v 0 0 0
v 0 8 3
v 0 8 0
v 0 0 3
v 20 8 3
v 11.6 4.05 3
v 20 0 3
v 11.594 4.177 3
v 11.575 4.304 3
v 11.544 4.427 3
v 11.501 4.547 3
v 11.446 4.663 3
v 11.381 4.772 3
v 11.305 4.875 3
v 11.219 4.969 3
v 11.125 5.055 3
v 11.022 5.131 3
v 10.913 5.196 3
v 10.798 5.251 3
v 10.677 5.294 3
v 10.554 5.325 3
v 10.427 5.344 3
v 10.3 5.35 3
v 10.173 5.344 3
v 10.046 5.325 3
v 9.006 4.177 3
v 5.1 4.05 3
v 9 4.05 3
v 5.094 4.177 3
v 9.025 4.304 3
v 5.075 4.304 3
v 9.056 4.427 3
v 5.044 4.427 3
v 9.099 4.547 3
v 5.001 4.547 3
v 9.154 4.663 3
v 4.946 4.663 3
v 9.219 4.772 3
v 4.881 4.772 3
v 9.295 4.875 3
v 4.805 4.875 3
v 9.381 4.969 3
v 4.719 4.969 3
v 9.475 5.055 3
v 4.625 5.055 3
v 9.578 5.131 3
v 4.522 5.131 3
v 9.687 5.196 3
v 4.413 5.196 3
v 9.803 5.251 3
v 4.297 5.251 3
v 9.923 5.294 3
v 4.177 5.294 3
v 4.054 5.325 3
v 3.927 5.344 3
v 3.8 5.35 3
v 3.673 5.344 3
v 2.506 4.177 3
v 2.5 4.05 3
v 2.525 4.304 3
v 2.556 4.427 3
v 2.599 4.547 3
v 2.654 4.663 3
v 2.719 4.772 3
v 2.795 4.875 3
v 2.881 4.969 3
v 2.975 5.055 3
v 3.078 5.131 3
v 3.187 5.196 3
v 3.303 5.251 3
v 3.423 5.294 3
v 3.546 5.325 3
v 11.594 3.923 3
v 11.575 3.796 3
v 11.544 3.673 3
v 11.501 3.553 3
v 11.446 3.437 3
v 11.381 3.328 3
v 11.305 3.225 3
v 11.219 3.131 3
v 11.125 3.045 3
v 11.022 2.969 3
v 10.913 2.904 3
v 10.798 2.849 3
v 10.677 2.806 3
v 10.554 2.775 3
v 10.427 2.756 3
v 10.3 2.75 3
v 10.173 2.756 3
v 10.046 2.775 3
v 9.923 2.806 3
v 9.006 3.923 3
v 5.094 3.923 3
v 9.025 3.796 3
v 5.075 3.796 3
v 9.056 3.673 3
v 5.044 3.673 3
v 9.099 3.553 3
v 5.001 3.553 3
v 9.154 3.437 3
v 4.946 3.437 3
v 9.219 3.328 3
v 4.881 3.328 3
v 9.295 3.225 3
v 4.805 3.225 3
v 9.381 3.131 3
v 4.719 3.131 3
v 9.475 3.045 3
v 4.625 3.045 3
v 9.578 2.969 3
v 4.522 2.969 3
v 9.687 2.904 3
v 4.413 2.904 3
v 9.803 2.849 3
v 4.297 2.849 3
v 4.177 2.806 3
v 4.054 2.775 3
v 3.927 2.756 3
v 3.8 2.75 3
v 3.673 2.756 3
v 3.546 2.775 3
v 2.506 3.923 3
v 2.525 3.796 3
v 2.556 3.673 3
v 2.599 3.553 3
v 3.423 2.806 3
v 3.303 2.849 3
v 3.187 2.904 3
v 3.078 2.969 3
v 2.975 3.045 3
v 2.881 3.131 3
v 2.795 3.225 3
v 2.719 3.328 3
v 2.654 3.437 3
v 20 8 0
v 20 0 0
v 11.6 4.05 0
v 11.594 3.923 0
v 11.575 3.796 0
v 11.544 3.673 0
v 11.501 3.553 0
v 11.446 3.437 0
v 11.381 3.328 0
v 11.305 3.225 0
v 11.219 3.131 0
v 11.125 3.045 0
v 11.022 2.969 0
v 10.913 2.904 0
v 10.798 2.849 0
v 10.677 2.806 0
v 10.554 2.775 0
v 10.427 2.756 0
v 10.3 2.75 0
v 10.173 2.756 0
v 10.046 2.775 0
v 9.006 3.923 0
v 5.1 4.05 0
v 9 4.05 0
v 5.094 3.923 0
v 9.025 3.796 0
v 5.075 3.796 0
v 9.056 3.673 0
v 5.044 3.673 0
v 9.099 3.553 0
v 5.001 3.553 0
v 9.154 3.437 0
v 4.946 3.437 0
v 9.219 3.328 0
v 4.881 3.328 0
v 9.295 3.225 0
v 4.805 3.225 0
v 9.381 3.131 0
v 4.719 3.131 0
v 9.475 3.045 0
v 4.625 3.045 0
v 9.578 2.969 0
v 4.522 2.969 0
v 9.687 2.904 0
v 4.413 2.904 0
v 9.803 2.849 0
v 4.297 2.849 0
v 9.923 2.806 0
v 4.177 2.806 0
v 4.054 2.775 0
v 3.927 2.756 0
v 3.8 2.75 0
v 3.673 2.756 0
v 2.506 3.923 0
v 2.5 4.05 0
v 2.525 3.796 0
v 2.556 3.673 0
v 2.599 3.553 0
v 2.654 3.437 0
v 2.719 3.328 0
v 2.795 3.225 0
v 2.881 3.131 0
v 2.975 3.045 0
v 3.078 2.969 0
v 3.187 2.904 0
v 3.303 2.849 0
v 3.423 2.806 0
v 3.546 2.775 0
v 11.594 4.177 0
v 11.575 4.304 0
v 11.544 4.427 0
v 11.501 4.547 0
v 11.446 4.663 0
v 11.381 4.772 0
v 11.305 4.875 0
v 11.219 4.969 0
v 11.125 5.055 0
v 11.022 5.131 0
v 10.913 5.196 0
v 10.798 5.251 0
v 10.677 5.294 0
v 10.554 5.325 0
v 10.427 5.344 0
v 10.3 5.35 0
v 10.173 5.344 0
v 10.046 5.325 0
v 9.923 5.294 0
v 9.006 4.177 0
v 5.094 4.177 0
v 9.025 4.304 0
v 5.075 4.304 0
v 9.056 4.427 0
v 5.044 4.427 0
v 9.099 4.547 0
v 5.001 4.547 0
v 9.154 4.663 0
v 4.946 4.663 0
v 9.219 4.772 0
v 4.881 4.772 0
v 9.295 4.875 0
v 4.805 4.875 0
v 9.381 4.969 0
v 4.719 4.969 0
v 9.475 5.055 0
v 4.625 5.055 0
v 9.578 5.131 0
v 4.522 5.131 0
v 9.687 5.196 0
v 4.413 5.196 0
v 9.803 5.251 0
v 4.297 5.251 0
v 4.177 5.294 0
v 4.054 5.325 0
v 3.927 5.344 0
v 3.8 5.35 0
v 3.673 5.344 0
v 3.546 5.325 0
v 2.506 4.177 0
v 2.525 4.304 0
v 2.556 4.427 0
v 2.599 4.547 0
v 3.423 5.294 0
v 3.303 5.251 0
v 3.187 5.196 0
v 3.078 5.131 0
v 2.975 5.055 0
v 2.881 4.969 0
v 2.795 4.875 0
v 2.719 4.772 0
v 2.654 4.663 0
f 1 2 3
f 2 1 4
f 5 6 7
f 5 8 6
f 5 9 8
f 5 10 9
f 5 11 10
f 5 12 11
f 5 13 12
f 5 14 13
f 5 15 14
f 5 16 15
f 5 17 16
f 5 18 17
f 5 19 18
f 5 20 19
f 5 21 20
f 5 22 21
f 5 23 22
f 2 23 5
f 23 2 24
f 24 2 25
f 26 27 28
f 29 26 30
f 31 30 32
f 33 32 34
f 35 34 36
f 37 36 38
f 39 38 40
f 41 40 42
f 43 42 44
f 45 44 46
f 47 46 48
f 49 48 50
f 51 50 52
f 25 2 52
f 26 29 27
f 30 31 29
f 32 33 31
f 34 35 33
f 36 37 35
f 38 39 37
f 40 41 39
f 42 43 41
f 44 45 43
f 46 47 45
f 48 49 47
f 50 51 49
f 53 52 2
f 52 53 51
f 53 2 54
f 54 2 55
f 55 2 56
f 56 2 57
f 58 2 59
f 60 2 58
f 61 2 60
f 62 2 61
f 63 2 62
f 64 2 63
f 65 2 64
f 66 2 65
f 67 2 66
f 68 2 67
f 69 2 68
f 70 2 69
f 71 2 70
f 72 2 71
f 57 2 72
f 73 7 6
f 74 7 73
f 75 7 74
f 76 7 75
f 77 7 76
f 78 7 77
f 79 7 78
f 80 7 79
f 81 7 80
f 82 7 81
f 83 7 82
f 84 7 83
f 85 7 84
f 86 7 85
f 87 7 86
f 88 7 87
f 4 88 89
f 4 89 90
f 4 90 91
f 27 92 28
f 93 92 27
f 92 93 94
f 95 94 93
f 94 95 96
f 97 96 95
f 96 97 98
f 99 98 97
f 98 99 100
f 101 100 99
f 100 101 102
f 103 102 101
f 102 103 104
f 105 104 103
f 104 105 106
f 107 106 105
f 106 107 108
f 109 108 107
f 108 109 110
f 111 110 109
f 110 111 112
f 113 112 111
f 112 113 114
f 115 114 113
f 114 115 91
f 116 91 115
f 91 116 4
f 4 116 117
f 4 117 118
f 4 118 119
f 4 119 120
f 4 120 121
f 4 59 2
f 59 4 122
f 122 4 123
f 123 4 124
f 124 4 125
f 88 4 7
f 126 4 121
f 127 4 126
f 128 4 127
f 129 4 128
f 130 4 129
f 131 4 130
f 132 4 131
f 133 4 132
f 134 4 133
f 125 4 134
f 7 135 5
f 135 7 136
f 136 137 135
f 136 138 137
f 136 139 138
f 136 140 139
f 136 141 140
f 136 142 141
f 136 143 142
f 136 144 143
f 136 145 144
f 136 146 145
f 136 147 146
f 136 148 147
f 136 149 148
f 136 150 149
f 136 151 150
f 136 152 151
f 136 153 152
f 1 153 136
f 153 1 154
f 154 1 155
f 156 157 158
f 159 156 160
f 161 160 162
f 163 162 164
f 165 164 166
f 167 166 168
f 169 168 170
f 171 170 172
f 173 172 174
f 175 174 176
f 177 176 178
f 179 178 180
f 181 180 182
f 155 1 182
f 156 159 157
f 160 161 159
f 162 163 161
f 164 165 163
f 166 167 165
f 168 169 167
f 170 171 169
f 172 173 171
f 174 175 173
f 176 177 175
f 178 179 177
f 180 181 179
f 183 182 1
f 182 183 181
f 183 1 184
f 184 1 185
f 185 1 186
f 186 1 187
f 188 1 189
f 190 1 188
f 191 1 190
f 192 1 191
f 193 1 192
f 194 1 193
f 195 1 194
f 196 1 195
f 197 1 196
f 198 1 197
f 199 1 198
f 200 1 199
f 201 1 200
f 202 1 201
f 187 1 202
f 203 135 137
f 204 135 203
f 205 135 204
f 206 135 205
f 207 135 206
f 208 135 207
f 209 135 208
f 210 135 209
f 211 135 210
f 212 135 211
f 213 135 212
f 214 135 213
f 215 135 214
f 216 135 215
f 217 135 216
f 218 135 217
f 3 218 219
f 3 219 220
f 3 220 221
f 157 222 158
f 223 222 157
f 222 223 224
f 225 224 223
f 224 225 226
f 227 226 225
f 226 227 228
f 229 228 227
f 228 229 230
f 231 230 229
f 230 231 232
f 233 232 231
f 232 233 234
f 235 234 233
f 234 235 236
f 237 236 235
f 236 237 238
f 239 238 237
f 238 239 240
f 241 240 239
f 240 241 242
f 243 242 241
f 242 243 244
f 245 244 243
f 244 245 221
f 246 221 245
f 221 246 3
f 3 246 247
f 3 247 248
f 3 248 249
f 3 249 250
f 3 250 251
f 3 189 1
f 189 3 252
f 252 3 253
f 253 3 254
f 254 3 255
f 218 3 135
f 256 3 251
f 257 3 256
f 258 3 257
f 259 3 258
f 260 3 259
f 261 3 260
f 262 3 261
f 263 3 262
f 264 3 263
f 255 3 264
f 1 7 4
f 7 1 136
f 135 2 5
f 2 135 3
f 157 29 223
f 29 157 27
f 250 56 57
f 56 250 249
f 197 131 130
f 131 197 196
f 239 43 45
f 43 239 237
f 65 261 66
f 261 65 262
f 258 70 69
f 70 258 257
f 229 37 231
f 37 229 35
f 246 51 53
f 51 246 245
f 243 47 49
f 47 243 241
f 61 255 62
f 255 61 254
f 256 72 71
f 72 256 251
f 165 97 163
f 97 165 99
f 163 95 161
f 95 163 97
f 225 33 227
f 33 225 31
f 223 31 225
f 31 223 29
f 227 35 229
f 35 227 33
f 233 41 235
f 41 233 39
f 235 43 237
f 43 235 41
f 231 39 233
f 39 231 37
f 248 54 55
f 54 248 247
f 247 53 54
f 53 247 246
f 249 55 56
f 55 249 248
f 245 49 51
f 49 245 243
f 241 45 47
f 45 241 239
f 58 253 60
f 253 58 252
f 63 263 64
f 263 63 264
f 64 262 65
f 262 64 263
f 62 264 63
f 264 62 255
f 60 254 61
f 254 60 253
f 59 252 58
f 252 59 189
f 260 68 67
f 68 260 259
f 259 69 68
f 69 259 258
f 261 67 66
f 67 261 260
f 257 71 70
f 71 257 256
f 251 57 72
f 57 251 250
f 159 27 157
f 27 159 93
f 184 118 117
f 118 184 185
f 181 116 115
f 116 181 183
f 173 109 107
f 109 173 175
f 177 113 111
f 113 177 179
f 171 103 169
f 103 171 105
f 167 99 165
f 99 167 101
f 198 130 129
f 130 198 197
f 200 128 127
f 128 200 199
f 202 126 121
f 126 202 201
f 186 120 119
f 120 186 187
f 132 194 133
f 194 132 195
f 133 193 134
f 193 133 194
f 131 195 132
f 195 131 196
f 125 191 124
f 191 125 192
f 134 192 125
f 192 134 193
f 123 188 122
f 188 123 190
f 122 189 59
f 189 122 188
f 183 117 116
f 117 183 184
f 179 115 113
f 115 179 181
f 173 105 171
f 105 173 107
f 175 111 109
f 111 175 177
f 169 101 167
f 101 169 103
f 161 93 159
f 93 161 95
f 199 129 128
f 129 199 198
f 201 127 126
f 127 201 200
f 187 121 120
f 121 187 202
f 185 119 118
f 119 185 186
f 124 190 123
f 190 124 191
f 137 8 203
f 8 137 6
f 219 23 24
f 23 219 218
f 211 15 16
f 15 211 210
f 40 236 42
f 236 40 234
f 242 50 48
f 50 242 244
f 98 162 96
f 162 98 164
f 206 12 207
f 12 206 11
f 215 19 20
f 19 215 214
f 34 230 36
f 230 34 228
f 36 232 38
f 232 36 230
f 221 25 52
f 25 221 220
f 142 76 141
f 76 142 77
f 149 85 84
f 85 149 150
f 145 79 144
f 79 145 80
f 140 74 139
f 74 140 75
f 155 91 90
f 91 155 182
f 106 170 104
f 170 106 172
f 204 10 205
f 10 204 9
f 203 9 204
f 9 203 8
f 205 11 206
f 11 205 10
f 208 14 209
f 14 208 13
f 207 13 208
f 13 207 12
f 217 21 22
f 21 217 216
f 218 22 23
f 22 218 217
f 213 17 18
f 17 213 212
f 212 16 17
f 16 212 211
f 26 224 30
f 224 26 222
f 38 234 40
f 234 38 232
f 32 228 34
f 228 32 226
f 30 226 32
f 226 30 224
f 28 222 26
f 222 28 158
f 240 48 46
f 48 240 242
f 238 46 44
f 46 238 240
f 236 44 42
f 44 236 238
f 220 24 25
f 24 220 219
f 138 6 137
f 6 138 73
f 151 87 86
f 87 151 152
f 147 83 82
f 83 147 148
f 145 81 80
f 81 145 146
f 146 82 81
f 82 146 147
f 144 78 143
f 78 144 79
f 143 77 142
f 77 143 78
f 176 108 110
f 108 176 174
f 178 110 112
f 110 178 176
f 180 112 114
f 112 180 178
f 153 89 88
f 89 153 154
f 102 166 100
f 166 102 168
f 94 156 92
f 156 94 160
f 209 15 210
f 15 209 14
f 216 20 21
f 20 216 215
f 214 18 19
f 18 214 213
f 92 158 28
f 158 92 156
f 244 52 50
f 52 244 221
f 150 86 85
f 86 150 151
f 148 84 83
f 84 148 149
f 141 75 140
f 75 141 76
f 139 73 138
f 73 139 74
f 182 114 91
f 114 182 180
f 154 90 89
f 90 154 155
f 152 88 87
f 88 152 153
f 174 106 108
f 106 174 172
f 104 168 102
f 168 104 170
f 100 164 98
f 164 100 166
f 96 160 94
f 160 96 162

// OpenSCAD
difference()
{
  cube(size=[20, 8, 3]);
  translate([3.8, 4.05, 0]) cylinder(h = 5, r = 1.3, $fn=64);
  translate([3.8 + 6.5, 4.05, 0]) cylinder(h = 5, r = 1.3, $fn=64);
}
